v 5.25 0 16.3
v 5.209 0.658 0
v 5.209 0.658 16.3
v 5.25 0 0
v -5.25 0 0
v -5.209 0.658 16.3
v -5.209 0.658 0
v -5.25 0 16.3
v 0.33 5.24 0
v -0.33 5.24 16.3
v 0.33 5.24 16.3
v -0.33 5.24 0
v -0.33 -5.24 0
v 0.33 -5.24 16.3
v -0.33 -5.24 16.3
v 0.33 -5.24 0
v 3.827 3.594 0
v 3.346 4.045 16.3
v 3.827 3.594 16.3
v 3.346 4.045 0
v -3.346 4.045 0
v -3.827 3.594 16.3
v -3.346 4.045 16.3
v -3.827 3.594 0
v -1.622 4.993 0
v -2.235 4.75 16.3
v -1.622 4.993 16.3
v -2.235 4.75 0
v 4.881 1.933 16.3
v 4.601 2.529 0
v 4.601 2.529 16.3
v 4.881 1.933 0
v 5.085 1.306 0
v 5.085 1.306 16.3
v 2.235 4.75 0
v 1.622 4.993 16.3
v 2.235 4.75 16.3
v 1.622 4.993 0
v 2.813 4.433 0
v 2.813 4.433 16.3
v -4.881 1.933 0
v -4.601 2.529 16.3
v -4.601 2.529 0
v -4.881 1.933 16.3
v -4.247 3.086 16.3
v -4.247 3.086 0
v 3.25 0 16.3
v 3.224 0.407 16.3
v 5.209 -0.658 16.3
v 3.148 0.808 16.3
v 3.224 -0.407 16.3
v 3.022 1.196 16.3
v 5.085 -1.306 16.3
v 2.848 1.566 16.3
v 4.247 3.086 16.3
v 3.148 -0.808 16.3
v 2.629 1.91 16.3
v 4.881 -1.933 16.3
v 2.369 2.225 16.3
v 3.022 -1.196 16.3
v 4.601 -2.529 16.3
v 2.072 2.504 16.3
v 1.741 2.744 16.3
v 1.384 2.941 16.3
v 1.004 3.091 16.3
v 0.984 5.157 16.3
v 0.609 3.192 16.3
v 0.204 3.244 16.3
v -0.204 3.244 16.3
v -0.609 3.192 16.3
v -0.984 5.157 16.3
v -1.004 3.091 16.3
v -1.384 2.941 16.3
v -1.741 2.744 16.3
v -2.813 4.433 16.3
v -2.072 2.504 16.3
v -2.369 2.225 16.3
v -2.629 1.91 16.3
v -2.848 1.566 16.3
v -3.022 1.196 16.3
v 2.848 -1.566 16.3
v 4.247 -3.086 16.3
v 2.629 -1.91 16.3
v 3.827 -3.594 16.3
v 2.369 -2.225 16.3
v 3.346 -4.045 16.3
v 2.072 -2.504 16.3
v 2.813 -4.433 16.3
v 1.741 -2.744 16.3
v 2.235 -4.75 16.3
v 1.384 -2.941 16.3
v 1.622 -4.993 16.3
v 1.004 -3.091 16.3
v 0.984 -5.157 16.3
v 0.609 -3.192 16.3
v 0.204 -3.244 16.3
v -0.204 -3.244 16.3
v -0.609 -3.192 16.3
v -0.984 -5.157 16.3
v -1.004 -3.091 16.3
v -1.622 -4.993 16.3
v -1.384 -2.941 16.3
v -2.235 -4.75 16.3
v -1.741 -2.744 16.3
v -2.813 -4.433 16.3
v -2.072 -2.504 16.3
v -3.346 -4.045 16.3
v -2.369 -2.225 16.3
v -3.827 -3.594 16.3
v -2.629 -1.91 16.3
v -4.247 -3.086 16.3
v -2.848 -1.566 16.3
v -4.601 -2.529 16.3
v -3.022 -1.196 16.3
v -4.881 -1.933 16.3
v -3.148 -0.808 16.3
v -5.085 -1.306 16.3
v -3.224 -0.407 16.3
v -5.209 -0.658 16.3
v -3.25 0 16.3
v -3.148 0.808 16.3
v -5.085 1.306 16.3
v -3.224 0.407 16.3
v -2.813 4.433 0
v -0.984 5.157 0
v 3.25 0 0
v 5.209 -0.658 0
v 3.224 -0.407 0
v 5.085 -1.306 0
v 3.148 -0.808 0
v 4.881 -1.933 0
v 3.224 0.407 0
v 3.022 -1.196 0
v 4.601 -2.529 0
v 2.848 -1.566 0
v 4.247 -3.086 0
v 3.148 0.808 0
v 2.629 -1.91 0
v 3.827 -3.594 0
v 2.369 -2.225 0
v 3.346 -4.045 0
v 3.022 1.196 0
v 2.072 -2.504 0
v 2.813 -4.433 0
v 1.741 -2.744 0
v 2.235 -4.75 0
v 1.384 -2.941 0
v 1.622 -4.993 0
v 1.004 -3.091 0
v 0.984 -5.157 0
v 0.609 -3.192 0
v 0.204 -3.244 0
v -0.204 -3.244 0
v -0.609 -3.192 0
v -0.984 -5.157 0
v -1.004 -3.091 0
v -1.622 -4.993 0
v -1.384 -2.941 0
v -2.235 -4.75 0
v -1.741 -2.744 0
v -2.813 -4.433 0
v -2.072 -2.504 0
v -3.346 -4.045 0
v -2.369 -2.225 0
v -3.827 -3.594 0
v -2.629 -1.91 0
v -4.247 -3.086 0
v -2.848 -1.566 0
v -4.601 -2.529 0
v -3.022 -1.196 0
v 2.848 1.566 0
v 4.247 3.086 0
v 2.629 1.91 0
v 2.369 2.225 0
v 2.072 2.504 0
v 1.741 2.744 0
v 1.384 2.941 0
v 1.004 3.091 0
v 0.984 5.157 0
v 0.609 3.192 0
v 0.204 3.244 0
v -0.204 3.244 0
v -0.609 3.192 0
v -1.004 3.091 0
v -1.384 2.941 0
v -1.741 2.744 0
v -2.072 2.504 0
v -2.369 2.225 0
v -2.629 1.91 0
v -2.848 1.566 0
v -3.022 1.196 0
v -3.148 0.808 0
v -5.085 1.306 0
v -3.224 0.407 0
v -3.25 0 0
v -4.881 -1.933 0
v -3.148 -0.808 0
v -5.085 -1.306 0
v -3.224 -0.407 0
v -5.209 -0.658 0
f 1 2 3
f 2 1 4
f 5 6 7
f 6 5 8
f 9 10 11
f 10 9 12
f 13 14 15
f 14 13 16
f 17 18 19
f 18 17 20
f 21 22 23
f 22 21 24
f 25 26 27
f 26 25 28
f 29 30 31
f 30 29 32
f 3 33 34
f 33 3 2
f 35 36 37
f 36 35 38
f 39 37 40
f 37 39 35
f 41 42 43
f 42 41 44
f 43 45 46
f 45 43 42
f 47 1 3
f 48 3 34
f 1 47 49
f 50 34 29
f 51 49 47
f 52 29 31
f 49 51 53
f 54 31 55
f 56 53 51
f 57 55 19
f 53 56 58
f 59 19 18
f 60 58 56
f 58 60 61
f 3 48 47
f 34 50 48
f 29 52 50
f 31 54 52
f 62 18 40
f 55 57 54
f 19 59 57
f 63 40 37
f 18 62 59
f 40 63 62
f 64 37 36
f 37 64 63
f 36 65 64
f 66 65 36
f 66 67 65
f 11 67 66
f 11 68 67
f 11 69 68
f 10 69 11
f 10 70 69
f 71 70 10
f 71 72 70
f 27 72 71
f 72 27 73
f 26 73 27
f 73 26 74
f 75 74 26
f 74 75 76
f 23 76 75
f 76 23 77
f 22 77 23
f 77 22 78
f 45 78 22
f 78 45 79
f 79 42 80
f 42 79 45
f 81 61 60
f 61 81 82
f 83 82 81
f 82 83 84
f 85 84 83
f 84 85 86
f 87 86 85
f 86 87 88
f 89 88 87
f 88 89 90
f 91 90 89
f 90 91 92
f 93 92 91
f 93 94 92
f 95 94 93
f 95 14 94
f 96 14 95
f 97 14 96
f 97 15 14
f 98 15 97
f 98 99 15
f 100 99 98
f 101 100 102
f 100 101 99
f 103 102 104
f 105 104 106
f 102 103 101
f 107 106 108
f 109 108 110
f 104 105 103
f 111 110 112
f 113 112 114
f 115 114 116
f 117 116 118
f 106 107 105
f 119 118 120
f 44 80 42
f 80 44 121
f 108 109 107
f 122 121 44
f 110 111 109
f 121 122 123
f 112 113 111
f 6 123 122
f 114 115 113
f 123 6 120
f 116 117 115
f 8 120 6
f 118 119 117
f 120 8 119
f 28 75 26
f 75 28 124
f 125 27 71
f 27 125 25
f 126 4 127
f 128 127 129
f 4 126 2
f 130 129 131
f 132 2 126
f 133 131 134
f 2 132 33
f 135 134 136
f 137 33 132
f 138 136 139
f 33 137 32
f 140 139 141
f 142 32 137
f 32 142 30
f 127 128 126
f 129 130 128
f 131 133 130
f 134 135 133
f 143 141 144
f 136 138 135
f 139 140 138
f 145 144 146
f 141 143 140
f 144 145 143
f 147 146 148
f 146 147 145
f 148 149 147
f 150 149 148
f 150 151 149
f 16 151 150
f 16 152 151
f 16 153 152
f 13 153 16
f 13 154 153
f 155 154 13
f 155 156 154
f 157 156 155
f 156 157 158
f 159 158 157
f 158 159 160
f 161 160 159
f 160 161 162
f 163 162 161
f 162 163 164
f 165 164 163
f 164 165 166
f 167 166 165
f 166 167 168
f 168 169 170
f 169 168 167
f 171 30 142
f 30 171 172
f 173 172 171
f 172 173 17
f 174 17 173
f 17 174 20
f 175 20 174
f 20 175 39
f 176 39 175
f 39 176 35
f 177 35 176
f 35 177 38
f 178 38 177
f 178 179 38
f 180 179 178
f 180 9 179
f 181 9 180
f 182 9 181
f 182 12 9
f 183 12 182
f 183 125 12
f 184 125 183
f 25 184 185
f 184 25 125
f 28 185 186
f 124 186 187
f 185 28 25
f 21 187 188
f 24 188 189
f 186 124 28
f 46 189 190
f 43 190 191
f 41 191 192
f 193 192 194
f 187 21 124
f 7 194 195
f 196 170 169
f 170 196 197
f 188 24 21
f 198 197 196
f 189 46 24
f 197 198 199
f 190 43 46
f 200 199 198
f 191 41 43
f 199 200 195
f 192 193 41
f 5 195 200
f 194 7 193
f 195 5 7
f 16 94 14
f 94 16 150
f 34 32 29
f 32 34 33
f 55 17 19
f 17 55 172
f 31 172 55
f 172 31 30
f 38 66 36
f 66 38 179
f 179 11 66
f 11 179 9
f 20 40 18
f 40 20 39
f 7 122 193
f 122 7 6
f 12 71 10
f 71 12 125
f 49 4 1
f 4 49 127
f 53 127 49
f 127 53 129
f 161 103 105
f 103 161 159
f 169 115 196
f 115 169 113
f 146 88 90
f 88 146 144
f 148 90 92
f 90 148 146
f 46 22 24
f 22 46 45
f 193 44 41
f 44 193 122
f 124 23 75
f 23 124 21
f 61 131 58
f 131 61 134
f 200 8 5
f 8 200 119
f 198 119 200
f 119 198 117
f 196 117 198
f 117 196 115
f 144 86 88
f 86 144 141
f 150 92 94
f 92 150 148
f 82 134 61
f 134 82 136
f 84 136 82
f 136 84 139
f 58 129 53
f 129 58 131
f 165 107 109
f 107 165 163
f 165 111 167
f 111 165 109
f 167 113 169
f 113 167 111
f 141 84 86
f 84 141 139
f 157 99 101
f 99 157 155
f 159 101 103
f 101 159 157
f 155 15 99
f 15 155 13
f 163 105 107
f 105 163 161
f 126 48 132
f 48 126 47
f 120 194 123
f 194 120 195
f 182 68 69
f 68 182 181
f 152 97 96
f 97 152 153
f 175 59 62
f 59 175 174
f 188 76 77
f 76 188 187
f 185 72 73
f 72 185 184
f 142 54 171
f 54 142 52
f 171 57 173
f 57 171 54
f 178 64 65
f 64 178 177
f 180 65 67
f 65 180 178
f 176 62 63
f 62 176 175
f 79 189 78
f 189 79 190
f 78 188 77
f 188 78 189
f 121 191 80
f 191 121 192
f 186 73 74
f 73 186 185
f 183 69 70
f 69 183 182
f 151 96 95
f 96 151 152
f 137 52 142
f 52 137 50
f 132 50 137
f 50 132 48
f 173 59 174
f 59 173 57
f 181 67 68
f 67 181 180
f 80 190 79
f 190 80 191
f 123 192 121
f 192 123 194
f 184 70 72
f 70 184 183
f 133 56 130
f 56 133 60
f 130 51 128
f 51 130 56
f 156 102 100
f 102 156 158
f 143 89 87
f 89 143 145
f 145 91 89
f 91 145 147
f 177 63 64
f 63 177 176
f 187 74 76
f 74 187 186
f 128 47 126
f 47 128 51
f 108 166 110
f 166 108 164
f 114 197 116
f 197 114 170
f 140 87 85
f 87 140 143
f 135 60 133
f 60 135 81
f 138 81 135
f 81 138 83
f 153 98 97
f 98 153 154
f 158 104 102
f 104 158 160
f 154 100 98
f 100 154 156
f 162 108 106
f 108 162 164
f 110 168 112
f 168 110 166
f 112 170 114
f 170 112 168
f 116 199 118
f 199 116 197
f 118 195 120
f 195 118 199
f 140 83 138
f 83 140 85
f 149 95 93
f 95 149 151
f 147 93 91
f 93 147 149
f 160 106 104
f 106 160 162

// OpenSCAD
// file: ../src/888_5011.scad
include <../parameters.scad>

module 888_5011() {
    difference() {
        cylinder(d=M6_screw_diameter+4, h=ALU_profile_width-608_bearing_thickness*2, $fn=50);
        
        translate([0, 0, -ALU_profile_holder_wall_thickness])
        cylinder(d=M6_screw_diameter, h=ALU_profile_width+ALU_profile_holder_wall_thickness*4, $fn=50);
    }
}

888_5011();
// file: ../parameters.scad
maximum_printable_size = 150;

layer_thickness = 0.3;
global_clearance = 0.5;


// scale parameters
tower_height = 220;
mid_base_width = 400;
mid_base_height = 160;
mid_base_length = 300;
base_mid_base_hinge_offset = 50;
counterweight_length = 200;


//Screw diameter and nut for M10 [mm]
M10_screw_diameter = 10.4;
M10_head_height = 10;
M10_head_diameter = 16+0.5;
M10_nut_height = 10.5;
M10_nut_diameter = 25.5;
M10_nut_pocket = 22.3;

//Screw diameter for M8 [mm]
M8_screw_diameter = 8.6;
M8_head_height = 8;
M8_head_diameter = 13.5;
M8_nut_height = 7.5;
M8_square_nut_thin_height = 4.5;
M8_nut_diameter = 14.4 + 0.5;
M8_nut_pocket = 13 + 0.5;
M8_washer_diameter = 16;
M8_washer_thickness = 1.5;


//Screw diameter and nut for M6 [mm]
M6_screw_diameter=6.5;
M6_head_diameter = 10+0.5;
M6_head_height = 6;
M6_nut_height = 4.9;
M6_nut_diameter = 11.8;
M6_nut_pocket = 10.4;
M6_square_nut_height = 3;
M6_square_nut_diameter = 10;
M6_washer_thickness = 1.6;

//Screw diameter and nut for M5 [mm]
M5_screw_diameter=5.5;
M5_head_height = 5;
M5_head_diameter = 13+0.5;
M5_nut_height = 4.5;
M5_nut_diameter = 9.4;
M5_nut_pocket = 8.4;

//Screw diameter and nut for M4 [mm]
M4_screw_diameter=4.5;
M4_screw_head_height = 4;
M4_nut_height = 3.2;
M4_nut_diameter = 8.4;
M4_nut_pocket = 7.5;

//Screw diameter and nut for M3 [mm]
M3_screw_diameter = 3.2;
M3_nut_height = 2.7;
M3_nut_diameter = 6.6;
M3_nut_pocket = 5.6;
M3_screw_head_height = 3;

//Screw diameter and nut for M2,5 [mm]
M2_5_screw_diameter = 2.7;
M2_5_nut_height = 2.3;
M2_5_nut_diameter = 6;
M2_5_nut_pocket = 5.5;

// kulove lozisko

bearing_efsm_08_h = 33+1;
bearing_efsm_08_m = 22;
bearing_efsm_08_db = 18;
bearing_efsm_08_ag = 10.5;
bearing_efsm_08_n = M4_screw_diameter;
bearing_efsm_08_a1 = 5.5;
bearing_efsm_08_d = 8.25;
bearing_efsm_08_B = 8; // ball height

bearing_efsm_10_h = 38+1;
bearing_efsm_10_m = 26;
bearing_efsm_10_db = 21.9;
bearing_efsm_10_ag = 12+0.2;
bearing_efsm_10_n = M5_screw_diameter;
bearing_efsm_10_a1 = 6.5;
bearing_efsm_10_d = 10.25;


bearing_efsm_12_width = 40+1;
bearing_efsm_12_h = bearing_efsm_12_width;
bearing_efsm_12_boltd = 28/2; // polovina vzdalenosti mezi srouby
bearing_efsm_12_m = bearing_efsm_12_boltd*2;
bearing_efsm_12_db = 25;
bearing_efsm_12_ag = 13;
bearing_efsm_12_a1 = 7;
bearing_efsm_12_n = M5_screw_diameter;
bearing_efsm_12_d = 12.15;
bearing_efsm_12_B = 10; // ball height
bearing_efsm_space = 1;

bearing_efsm_17_width = 54+1;
bearing_efsm_17_h = bearing_efsm_17_width;
bearing_efsm_17_boltd = 38/2; // polovina vzdalenosti mezi srouby
bearing_efsm_17_m = bearing_efsm_17_boltd*2;
bearing_efsm_17_db = 35;
bearing_efsm_17_ag = 18;
bearing_efsm_17_n = M6_screw_diameter;
bearing_efsm_17_a1 = 10;
bearing_efsm_17_B = 17; // ball height

//limcove lozisko
bearing_EFOM_10_L=26; //celkova sirka zakladny
bearing_EFOM_10_d1=10.3;//diametr otvoru real=10 mm
bearing_EFOM_10_dB=22;//diametr vystupku pro ulozeni lozika
bearing_EFOM_10_H=52;//celková delka zakladny
bearing_EFOM_10_J=36;// hole pitch
bearing_EFOM_10_A1=6.5;//vyska pouzdra
bearing_EFOM_10_Ag=12;//celkova vyska
bearing_EFOM_10_N1=5;//sirka otvoru pro sroub
bearing_EFOM_10_N2=8;//delka otvoru pro sroub
bearing_EFOM_10_m=36;//roztec der pro sroub
bearing_EFOM_10_h=9;//vyska lozika


608_bearing_outer_diameter = 22.3;
608_bearing_inner_diameter = 16;
608_bearing_thickness = 7.1;


// 20 KG servo parameters

servo_20kg_axis_offset = 9.375; // jak je osa mimo stredu
servo_20kg_body_x = 42;
servo_20kg_body_y = 21;
servo_20kg_body_z = 40;
servo_20kg_thread_x = 49/2;
servo_20kg_thread_y = 10/2;
servo_20kg_body_below = 10; // jak hluboko je tělo serva pod drzaky na srouby
servo_20kg_below = 25.8; // jak hluboko je páka serva pod drzaky na srouby

servo_20kg_bolt_d = 2.5+0.3;
servo_20kg_nut_d = 5+0.3;


//strain gauge
strain_gauge_width = 12.7;
strain_gauge_length = 75.1;
strain_gauge_screw_distance = 10;

//ALU profile
ALU_profile_width = 30.5;
ALU_profile_holder_wall_thickness = 3;
ALU_profile_groove_width = 8;

//pillow block bearing
//https://www.igus.eu/product/372
//Part no. KSTM-08
KSTM08_screws_distance = 33;         //m
KSTM08_screws_holes_diameter = 4.5;  //d2
KSTM08_flange_thickness = 6;         //h3
KSTM08_case_width = 9;               //C1
KSTM08_case_length = 47;             //a
KSTM08_ball_width = 12;              //B
KSTM08_ball_hole_diameter = 7.85;    //d1


//ložiska pro malý rotor
bearing_outer_diameter = 10.2;    // Rozměr B1 v nákresu s přídavkem na toleranci otvoru
bearing_thickness = 4;        // Rozměr B2 v nákresu
//bearing_shaft_length = 19.5;    // Rozměr B3 v nákresu, Originalni hodnota 19.5
bearing_shaft_length = 20;    // Rozměr B3 v nákresu


//parametry víčka s telemetrickou anténou
S01_sila_materialu=1.2;
S01_vyska_horni_zavit=10;
S01_hloubka_zavitu=4;
S01_prumer_vnitrni=50;
LO_spodni_prumer=17.2;
LO_vyska_bez_krytu=15;
S01_tolerance_zavit=1.5;
R01_vyska_prekryti_statoru=10;

g3_0_cone1 = 70;
g3_0_srcew_dist = 55;
// main file
include <../parameters.scad>
use <../src/888_5011.scad>

888_5011();
